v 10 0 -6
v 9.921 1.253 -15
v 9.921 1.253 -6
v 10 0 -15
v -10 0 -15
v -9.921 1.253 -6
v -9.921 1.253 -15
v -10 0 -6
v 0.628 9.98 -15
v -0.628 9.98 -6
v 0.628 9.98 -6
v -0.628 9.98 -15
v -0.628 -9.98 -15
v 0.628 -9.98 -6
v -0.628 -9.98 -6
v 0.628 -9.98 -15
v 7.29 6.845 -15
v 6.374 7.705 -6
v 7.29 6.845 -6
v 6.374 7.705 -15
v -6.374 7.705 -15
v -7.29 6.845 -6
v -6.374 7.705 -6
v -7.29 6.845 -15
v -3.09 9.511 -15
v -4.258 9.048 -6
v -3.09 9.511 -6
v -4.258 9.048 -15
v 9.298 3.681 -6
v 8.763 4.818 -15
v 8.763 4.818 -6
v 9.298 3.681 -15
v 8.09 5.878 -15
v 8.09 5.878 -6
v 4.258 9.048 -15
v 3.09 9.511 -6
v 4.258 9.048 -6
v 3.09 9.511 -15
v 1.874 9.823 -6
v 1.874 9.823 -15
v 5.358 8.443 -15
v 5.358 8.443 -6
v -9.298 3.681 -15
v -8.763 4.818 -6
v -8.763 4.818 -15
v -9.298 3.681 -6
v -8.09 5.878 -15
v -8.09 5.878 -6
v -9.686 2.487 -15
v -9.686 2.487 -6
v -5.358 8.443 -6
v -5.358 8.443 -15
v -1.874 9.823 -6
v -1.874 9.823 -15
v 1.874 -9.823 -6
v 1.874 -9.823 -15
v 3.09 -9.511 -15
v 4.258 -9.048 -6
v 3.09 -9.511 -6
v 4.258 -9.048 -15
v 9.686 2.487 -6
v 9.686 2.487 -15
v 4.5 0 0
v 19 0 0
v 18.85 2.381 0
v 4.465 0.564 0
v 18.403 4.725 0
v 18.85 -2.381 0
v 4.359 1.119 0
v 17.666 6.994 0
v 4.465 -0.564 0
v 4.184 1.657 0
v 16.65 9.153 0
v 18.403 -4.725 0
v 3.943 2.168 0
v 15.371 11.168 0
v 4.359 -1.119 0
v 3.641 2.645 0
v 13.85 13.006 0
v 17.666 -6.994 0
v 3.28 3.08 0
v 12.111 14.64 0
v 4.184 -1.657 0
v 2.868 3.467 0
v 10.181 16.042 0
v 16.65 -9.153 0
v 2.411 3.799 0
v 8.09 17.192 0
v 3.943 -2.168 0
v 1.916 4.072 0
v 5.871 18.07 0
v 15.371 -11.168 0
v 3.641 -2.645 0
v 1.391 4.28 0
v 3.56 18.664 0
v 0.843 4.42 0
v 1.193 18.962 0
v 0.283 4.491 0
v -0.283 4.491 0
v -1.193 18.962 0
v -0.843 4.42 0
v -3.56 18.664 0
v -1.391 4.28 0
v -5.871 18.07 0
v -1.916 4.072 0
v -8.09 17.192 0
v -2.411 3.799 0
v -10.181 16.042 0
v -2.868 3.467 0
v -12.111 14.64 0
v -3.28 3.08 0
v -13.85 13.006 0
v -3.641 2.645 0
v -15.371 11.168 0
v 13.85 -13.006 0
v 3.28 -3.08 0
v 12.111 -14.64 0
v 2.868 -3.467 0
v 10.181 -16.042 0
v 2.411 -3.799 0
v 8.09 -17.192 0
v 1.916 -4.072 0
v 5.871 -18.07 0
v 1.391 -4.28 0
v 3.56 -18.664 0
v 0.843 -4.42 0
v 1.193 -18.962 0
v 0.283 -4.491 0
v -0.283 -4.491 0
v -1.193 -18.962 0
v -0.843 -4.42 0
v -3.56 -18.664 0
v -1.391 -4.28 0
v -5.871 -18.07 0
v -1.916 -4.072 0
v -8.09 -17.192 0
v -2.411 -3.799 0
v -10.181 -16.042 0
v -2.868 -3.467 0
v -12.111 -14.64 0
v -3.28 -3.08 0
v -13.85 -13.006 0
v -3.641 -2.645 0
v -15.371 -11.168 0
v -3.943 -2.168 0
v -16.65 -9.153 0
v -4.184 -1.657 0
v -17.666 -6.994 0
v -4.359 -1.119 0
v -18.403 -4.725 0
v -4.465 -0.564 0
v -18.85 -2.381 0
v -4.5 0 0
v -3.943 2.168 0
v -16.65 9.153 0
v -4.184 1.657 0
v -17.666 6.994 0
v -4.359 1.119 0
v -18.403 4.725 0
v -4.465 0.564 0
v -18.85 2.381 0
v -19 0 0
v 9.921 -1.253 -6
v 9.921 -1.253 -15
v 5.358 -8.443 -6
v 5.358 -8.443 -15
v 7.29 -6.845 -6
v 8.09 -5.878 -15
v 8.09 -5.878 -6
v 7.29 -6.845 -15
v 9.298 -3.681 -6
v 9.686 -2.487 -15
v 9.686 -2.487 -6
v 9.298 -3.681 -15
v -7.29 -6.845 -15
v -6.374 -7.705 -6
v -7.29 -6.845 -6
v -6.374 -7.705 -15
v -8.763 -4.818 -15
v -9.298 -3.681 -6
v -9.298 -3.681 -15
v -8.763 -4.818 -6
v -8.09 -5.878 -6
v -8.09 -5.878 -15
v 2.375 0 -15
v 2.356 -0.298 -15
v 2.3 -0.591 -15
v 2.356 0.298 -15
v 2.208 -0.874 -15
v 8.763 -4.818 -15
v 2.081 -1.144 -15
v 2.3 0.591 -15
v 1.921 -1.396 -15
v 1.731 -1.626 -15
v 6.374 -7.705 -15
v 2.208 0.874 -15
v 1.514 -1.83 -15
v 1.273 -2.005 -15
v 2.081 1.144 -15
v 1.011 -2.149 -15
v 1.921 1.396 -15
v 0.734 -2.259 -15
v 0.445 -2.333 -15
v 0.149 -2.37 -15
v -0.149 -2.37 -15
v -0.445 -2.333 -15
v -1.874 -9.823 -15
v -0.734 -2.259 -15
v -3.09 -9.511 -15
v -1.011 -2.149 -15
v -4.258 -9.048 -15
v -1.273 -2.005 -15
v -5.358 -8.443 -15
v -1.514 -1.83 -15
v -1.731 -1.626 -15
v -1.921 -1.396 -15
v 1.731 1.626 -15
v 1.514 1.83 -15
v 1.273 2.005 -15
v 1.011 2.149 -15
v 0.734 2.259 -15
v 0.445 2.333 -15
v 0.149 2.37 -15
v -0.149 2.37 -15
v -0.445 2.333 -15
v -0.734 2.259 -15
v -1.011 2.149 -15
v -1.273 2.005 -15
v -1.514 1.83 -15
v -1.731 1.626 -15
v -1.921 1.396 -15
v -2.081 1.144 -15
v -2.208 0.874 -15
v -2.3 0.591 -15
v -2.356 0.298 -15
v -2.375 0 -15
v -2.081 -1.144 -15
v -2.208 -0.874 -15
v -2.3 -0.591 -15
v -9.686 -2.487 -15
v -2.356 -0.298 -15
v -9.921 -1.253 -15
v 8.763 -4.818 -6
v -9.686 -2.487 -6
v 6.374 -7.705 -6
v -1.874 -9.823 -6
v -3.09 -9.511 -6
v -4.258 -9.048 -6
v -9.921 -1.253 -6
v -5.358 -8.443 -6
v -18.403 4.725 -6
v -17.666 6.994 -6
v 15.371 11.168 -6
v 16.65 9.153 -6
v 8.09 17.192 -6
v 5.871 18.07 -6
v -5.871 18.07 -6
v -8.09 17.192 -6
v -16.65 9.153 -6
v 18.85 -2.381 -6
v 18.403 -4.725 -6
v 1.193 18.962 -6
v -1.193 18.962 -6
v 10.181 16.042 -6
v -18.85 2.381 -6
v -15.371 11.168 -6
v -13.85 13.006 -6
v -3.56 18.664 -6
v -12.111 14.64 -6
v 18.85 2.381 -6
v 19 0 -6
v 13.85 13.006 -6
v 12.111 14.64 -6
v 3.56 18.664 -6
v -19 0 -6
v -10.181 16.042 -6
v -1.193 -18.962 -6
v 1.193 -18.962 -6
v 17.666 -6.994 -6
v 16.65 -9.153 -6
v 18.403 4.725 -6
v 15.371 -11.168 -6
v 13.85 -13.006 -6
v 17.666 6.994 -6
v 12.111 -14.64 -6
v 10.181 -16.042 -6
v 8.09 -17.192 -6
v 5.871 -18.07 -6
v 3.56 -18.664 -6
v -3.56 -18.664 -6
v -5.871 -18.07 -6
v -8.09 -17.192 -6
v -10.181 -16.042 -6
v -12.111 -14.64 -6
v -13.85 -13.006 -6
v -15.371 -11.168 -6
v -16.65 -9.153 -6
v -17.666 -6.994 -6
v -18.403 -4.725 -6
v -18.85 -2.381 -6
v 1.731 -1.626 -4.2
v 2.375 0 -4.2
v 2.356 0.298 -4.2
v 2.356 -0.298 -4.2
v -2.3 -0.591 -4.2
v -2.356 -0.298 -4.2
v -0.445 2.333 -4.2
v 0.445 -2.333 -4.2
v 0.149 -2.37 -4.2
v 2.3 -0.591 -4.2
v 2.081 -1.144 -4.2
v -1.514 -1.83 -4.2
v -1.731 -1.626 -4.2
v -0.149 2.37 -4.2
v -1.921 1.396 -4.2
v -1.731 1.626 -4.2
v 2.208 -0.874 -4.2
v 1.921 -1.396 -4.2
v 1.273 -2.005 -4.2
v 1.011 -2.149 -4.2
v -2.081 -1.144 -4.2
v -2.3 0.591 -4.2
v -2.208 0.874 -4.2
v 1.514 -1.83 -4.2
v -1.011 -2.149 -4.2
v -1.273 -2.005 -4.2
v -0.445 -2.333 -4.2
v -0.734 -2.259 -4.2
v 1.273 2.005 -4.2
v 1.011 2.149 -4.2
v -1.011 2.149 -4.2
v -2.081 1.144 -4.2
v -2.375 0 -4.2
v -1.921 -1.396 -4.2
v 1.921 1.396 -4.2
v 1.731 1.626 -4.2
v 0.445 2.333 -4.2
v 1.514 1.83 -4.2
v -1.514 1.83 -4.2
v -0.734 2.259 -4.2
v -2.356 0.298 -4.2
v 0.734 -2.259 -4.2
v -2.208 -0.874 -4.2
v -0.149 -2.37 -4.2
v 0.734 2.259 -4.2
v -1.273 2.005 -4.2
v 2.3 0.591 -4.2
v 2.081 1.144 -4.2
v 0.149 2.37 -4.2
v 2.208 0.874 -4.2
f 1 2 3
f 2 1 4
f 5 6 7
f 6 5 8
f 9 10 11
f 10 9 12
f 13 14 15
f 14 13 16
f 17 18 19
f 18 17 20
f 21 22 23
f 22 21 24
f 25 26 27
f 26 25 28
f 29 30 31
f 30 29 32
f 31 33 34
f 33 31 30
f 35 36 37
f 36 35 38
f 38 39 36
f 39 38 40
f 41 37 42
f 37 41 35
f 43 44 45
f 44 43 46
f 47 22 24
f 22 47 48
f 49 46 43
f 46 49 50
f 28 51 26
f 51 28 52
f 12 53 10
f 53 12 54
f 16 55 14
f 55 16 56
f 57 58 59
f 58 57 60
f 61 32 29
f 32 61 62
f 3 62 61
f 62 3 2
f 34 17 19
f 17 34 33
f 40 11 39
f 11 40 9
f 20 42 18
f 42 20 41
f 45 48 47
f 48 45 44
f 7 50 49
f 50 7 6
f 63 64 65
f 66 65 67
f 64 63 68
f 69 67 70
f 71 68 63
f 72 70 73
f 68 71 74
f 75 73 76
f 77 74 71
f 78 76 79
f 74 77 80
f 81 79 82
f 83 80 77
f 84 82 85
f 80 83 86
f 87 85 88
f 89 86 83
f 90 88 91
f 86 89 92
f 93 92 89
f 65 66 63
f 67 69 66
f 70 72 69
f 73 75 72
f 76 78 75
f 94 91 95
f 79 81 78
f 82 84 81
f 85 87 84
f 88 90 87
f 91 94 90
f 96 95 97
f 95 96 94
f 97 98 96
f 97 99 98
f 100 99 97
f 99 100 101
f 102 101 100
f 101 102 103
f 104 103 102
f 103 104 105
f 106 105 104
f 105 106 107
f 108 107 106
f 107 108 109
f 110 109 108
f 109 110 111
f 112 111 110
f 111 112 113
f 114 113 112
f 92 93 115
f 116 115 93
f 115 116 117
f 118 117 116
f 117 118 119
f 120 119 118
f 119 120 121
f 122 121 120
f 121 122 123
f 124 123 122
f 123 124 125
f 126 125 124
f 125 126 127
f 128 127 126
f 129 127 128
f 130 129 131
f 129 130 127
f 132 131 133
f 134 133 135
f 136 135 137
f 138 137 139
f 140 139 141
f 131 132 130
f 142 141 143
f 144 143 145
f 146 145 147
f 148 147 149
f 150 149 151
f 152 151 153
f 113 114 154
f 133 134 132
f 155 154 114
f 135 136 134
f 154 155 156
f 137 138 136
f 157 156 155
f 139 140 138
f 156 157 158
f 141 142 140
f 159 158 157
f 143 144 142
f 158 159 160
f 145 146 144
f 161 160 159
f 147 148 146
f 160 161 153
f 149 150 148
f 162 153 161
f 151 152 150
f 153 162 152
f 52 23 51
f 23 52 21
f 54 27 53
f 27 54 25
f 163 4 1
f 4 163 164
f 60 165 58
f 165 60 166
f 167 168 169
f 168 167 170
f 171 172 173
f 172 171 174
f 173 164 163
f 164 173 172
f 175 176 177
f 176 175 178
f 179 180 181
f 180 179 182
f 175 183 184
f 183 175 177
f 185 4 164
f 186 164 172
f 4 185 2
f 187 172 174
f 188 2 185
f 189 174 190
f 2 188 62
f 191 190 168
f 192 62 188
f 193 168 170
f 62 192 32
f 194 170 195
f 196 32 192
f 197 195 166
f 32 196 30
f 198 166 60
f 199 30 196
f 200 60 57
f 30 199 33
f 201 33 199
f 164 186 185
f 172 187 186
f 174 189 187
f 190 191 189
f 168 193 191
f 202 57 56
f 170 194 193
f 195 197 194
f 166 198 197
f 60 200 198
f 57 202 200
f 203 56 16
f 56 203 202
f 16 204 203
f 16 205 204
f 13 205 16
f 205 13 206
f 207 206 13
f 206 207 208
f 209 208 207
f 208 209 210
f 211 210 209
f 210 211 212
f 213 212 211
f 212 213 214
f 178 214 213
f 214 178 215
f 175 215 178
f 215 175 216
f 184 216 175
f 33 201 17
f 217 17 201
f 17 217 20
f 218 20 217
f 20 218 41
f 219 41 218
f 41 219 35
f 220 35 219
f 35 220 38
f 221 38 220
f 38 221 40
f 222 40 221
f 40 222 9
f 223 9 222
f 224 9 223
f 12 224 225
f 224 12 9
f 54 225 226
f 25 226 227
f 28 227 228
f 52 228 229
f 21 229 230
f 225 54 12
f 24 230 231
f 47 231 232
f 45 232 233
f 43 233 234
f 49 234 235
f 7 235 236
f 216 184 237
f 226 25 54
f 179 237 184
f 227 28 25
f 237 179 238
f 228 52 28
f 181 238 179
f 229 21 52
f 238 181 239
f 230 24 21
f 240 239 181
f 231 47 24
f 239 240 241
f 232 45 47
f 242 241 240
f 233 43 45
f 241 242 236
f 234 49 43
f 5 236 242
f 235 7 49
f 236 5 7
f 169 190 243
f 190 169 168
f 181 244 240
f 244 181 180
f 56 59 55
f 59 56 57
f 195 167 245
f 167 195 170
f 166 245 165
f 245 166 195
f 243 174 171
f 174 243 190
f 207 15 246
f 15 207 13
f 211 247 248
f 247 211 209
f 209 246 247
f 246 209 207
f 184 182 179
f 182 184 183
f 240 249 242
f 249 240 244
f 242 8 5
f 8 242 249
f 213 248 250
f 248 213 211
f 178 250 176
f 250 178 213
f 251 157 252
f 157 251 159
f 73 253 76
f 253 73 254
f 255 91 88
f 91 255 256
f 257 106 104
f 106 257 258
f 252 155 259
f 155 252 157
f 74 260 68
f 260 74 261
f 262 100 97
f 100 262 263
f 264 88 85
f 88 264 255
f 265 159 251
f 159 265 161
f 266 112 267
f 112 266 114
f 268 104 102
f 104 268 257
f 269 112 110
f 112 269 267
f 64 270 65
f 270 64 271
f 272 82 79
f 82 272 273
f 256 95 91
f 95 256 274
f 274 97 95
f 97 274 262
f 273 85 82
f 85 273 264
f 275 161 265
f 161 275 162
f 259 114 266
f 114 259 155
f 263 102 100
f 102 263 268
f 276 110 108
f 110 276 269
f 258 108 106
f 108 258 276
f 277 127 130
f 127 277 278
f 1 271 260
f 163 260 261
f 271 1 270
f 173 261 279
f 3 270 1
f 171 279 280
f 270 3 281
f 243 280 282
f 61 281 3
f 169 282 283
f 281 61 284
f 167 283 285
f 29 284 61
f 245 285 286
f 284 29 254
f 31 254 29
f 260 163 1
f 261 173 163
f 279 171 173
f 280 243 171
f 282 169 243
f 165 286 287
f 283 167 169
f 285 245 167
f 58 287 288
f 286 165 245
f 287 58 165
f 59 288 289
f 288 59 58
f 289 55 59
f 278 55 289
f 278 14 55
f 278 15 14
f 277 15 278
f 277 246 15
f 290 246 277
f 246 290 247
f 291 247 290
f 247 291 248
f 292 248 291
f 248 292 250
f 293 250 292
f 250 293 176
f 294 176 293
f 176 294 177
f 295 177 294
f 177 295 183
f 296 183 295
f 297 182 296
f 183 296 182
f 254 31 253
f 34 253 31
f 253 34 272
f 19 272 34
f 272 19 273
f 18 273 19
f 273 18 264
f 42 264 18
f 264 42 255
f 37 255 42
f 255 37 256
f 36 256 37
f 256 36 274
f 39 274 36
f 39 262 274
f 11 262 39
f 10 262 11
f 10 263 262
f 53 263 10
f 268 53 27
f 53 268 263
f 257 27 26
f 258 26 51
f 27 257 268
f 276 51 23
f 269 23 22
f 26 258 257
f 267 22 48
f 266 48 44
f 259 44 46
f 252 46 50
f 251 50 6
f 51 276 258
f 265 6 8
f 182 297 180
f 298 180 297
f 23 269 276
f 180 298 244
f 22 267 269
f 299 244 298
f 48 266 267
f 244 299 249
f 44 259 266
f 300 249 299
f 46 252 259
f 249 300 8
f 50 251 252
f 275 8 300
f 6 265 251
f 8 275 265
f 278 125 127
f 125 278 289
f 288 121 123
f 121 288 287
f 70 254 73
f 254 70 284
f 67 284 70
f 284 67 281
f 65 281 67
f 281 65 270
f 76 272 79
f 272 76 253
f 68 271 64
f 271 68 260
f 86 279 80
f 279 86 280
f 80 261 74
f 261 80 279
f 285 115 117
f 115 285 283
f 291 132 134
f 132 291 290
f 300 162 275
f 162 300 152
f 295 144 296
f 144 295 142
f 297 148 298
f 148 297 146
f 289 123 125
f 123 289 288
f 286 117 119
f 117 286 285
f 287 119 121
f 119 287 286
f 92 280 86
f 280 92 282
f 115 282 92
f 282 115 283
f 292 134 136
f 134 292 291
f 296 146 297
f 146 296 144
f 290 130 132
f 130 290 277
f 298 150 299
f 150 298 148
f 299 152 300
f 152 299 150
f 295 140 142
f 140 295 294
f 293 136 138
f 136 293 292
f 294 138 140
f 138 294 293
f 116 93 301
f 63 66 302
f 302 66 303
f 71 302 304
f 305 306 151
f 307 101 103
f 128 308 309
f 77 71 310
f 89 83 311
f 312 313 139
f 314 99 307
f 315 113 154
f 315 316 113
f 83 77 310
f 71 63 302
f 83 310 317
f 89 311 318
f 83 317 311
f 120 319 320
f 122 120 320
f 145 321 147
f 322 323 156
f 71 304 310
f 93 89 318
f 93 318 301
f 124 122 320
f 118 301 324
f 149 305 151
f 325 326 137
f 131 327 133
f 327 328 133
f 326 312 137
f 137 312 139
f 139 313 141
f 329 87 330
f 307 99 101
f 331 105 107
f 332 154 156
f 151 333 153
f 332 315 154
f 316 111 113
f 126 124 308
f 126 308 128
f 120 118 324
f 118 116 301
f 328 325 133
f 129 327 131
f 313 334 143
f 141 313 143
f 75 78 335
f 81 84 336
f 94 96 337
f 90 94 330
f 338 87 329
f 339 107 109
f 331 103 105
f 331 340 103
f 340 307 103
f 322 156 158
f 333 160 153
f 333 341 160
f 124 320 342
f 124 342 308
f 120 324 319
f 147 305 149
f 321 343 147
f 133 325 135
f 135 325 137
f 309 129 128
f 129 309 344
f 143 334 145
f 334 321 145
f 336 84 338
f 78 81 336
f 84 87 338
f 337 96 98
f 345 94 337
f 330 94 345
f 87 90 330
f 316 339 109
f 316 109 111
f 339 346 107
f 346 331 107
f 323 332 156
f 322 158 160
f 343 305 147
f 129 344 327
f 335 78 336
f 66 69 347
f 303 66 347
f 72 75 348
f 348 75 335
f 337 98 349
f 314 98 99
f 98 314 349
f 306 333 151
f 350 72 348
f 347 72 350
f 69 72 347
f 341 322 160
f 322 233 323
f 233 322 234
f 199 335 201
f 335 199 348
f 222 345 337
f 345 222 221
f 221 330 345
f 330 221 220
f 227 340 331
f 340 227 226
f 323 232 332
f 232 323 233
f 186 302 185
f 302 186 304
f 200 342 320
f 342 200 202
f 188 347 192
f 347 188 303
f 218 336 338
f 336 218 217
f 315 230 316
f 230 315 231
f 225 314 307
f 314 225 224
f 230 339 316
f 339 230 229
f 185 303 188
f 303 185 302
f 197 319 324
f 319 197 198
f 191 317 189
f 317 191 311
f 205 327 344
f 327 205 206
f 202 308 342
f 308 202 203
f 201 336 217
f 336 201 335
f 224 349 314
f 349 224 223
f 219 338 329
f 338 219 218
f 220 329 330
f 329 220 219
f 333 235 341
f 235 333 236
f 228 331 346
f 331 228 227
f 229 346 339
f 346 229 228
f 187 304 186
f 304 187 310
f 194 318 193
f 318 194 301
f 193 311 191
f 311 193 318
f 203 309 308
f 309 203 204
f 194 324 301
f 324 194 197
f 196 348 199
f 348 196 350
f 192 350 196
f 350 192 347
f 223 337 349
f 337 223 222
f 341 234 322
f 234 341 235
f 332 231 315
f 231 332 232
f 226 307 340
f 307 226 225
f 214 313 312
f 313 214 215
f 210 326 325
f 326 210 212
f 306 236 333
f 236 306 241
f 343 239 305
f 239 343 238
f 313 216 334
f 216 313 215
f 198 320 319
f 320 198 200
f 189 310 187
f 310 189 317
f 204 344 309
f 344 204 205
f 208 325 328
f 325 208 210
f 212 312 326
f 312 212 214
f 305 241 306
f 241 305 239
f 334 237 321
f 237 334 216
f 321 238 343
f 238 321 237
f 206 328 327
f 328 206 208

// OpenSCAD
$fn = 50;


difference() {
	union() {
		translate(v = [0, 0, -15.0000000000]) {
			cylinder(h = 15, r = 10.0000000000);
		}
		translate(v = [0, 0, -6.0000000000]) {
			cylinder(h = 6, r = 19.0000000000);
		}
	}
	union() {
		translate(v = [0, 0, 0]) {
			rotate(a = [0, 0, 0]) {
				difference() {
					union() {
						#translate(v = [0, 0, -15.0000000000]) {
							cylinder(h = 15, r = 2.2500000000);
						}
						#translate(v = [0, 0, -4.2000000000]) {
							cylinder(h = 4.2000000000, r1 = 2.3750000000, r2 = 4.5000000000);
						}
						#translate(v = [0, 0, -15.0000000000]) {
							cylinder(h = 15, r = 2.3750000000);
						}
						#translate(v = [0, 0, -15.0000000000]) {
							cylinder(h = 15, r = 2.2500000000);
						}
					}
					union();
				}
			}
		}
	}
}
